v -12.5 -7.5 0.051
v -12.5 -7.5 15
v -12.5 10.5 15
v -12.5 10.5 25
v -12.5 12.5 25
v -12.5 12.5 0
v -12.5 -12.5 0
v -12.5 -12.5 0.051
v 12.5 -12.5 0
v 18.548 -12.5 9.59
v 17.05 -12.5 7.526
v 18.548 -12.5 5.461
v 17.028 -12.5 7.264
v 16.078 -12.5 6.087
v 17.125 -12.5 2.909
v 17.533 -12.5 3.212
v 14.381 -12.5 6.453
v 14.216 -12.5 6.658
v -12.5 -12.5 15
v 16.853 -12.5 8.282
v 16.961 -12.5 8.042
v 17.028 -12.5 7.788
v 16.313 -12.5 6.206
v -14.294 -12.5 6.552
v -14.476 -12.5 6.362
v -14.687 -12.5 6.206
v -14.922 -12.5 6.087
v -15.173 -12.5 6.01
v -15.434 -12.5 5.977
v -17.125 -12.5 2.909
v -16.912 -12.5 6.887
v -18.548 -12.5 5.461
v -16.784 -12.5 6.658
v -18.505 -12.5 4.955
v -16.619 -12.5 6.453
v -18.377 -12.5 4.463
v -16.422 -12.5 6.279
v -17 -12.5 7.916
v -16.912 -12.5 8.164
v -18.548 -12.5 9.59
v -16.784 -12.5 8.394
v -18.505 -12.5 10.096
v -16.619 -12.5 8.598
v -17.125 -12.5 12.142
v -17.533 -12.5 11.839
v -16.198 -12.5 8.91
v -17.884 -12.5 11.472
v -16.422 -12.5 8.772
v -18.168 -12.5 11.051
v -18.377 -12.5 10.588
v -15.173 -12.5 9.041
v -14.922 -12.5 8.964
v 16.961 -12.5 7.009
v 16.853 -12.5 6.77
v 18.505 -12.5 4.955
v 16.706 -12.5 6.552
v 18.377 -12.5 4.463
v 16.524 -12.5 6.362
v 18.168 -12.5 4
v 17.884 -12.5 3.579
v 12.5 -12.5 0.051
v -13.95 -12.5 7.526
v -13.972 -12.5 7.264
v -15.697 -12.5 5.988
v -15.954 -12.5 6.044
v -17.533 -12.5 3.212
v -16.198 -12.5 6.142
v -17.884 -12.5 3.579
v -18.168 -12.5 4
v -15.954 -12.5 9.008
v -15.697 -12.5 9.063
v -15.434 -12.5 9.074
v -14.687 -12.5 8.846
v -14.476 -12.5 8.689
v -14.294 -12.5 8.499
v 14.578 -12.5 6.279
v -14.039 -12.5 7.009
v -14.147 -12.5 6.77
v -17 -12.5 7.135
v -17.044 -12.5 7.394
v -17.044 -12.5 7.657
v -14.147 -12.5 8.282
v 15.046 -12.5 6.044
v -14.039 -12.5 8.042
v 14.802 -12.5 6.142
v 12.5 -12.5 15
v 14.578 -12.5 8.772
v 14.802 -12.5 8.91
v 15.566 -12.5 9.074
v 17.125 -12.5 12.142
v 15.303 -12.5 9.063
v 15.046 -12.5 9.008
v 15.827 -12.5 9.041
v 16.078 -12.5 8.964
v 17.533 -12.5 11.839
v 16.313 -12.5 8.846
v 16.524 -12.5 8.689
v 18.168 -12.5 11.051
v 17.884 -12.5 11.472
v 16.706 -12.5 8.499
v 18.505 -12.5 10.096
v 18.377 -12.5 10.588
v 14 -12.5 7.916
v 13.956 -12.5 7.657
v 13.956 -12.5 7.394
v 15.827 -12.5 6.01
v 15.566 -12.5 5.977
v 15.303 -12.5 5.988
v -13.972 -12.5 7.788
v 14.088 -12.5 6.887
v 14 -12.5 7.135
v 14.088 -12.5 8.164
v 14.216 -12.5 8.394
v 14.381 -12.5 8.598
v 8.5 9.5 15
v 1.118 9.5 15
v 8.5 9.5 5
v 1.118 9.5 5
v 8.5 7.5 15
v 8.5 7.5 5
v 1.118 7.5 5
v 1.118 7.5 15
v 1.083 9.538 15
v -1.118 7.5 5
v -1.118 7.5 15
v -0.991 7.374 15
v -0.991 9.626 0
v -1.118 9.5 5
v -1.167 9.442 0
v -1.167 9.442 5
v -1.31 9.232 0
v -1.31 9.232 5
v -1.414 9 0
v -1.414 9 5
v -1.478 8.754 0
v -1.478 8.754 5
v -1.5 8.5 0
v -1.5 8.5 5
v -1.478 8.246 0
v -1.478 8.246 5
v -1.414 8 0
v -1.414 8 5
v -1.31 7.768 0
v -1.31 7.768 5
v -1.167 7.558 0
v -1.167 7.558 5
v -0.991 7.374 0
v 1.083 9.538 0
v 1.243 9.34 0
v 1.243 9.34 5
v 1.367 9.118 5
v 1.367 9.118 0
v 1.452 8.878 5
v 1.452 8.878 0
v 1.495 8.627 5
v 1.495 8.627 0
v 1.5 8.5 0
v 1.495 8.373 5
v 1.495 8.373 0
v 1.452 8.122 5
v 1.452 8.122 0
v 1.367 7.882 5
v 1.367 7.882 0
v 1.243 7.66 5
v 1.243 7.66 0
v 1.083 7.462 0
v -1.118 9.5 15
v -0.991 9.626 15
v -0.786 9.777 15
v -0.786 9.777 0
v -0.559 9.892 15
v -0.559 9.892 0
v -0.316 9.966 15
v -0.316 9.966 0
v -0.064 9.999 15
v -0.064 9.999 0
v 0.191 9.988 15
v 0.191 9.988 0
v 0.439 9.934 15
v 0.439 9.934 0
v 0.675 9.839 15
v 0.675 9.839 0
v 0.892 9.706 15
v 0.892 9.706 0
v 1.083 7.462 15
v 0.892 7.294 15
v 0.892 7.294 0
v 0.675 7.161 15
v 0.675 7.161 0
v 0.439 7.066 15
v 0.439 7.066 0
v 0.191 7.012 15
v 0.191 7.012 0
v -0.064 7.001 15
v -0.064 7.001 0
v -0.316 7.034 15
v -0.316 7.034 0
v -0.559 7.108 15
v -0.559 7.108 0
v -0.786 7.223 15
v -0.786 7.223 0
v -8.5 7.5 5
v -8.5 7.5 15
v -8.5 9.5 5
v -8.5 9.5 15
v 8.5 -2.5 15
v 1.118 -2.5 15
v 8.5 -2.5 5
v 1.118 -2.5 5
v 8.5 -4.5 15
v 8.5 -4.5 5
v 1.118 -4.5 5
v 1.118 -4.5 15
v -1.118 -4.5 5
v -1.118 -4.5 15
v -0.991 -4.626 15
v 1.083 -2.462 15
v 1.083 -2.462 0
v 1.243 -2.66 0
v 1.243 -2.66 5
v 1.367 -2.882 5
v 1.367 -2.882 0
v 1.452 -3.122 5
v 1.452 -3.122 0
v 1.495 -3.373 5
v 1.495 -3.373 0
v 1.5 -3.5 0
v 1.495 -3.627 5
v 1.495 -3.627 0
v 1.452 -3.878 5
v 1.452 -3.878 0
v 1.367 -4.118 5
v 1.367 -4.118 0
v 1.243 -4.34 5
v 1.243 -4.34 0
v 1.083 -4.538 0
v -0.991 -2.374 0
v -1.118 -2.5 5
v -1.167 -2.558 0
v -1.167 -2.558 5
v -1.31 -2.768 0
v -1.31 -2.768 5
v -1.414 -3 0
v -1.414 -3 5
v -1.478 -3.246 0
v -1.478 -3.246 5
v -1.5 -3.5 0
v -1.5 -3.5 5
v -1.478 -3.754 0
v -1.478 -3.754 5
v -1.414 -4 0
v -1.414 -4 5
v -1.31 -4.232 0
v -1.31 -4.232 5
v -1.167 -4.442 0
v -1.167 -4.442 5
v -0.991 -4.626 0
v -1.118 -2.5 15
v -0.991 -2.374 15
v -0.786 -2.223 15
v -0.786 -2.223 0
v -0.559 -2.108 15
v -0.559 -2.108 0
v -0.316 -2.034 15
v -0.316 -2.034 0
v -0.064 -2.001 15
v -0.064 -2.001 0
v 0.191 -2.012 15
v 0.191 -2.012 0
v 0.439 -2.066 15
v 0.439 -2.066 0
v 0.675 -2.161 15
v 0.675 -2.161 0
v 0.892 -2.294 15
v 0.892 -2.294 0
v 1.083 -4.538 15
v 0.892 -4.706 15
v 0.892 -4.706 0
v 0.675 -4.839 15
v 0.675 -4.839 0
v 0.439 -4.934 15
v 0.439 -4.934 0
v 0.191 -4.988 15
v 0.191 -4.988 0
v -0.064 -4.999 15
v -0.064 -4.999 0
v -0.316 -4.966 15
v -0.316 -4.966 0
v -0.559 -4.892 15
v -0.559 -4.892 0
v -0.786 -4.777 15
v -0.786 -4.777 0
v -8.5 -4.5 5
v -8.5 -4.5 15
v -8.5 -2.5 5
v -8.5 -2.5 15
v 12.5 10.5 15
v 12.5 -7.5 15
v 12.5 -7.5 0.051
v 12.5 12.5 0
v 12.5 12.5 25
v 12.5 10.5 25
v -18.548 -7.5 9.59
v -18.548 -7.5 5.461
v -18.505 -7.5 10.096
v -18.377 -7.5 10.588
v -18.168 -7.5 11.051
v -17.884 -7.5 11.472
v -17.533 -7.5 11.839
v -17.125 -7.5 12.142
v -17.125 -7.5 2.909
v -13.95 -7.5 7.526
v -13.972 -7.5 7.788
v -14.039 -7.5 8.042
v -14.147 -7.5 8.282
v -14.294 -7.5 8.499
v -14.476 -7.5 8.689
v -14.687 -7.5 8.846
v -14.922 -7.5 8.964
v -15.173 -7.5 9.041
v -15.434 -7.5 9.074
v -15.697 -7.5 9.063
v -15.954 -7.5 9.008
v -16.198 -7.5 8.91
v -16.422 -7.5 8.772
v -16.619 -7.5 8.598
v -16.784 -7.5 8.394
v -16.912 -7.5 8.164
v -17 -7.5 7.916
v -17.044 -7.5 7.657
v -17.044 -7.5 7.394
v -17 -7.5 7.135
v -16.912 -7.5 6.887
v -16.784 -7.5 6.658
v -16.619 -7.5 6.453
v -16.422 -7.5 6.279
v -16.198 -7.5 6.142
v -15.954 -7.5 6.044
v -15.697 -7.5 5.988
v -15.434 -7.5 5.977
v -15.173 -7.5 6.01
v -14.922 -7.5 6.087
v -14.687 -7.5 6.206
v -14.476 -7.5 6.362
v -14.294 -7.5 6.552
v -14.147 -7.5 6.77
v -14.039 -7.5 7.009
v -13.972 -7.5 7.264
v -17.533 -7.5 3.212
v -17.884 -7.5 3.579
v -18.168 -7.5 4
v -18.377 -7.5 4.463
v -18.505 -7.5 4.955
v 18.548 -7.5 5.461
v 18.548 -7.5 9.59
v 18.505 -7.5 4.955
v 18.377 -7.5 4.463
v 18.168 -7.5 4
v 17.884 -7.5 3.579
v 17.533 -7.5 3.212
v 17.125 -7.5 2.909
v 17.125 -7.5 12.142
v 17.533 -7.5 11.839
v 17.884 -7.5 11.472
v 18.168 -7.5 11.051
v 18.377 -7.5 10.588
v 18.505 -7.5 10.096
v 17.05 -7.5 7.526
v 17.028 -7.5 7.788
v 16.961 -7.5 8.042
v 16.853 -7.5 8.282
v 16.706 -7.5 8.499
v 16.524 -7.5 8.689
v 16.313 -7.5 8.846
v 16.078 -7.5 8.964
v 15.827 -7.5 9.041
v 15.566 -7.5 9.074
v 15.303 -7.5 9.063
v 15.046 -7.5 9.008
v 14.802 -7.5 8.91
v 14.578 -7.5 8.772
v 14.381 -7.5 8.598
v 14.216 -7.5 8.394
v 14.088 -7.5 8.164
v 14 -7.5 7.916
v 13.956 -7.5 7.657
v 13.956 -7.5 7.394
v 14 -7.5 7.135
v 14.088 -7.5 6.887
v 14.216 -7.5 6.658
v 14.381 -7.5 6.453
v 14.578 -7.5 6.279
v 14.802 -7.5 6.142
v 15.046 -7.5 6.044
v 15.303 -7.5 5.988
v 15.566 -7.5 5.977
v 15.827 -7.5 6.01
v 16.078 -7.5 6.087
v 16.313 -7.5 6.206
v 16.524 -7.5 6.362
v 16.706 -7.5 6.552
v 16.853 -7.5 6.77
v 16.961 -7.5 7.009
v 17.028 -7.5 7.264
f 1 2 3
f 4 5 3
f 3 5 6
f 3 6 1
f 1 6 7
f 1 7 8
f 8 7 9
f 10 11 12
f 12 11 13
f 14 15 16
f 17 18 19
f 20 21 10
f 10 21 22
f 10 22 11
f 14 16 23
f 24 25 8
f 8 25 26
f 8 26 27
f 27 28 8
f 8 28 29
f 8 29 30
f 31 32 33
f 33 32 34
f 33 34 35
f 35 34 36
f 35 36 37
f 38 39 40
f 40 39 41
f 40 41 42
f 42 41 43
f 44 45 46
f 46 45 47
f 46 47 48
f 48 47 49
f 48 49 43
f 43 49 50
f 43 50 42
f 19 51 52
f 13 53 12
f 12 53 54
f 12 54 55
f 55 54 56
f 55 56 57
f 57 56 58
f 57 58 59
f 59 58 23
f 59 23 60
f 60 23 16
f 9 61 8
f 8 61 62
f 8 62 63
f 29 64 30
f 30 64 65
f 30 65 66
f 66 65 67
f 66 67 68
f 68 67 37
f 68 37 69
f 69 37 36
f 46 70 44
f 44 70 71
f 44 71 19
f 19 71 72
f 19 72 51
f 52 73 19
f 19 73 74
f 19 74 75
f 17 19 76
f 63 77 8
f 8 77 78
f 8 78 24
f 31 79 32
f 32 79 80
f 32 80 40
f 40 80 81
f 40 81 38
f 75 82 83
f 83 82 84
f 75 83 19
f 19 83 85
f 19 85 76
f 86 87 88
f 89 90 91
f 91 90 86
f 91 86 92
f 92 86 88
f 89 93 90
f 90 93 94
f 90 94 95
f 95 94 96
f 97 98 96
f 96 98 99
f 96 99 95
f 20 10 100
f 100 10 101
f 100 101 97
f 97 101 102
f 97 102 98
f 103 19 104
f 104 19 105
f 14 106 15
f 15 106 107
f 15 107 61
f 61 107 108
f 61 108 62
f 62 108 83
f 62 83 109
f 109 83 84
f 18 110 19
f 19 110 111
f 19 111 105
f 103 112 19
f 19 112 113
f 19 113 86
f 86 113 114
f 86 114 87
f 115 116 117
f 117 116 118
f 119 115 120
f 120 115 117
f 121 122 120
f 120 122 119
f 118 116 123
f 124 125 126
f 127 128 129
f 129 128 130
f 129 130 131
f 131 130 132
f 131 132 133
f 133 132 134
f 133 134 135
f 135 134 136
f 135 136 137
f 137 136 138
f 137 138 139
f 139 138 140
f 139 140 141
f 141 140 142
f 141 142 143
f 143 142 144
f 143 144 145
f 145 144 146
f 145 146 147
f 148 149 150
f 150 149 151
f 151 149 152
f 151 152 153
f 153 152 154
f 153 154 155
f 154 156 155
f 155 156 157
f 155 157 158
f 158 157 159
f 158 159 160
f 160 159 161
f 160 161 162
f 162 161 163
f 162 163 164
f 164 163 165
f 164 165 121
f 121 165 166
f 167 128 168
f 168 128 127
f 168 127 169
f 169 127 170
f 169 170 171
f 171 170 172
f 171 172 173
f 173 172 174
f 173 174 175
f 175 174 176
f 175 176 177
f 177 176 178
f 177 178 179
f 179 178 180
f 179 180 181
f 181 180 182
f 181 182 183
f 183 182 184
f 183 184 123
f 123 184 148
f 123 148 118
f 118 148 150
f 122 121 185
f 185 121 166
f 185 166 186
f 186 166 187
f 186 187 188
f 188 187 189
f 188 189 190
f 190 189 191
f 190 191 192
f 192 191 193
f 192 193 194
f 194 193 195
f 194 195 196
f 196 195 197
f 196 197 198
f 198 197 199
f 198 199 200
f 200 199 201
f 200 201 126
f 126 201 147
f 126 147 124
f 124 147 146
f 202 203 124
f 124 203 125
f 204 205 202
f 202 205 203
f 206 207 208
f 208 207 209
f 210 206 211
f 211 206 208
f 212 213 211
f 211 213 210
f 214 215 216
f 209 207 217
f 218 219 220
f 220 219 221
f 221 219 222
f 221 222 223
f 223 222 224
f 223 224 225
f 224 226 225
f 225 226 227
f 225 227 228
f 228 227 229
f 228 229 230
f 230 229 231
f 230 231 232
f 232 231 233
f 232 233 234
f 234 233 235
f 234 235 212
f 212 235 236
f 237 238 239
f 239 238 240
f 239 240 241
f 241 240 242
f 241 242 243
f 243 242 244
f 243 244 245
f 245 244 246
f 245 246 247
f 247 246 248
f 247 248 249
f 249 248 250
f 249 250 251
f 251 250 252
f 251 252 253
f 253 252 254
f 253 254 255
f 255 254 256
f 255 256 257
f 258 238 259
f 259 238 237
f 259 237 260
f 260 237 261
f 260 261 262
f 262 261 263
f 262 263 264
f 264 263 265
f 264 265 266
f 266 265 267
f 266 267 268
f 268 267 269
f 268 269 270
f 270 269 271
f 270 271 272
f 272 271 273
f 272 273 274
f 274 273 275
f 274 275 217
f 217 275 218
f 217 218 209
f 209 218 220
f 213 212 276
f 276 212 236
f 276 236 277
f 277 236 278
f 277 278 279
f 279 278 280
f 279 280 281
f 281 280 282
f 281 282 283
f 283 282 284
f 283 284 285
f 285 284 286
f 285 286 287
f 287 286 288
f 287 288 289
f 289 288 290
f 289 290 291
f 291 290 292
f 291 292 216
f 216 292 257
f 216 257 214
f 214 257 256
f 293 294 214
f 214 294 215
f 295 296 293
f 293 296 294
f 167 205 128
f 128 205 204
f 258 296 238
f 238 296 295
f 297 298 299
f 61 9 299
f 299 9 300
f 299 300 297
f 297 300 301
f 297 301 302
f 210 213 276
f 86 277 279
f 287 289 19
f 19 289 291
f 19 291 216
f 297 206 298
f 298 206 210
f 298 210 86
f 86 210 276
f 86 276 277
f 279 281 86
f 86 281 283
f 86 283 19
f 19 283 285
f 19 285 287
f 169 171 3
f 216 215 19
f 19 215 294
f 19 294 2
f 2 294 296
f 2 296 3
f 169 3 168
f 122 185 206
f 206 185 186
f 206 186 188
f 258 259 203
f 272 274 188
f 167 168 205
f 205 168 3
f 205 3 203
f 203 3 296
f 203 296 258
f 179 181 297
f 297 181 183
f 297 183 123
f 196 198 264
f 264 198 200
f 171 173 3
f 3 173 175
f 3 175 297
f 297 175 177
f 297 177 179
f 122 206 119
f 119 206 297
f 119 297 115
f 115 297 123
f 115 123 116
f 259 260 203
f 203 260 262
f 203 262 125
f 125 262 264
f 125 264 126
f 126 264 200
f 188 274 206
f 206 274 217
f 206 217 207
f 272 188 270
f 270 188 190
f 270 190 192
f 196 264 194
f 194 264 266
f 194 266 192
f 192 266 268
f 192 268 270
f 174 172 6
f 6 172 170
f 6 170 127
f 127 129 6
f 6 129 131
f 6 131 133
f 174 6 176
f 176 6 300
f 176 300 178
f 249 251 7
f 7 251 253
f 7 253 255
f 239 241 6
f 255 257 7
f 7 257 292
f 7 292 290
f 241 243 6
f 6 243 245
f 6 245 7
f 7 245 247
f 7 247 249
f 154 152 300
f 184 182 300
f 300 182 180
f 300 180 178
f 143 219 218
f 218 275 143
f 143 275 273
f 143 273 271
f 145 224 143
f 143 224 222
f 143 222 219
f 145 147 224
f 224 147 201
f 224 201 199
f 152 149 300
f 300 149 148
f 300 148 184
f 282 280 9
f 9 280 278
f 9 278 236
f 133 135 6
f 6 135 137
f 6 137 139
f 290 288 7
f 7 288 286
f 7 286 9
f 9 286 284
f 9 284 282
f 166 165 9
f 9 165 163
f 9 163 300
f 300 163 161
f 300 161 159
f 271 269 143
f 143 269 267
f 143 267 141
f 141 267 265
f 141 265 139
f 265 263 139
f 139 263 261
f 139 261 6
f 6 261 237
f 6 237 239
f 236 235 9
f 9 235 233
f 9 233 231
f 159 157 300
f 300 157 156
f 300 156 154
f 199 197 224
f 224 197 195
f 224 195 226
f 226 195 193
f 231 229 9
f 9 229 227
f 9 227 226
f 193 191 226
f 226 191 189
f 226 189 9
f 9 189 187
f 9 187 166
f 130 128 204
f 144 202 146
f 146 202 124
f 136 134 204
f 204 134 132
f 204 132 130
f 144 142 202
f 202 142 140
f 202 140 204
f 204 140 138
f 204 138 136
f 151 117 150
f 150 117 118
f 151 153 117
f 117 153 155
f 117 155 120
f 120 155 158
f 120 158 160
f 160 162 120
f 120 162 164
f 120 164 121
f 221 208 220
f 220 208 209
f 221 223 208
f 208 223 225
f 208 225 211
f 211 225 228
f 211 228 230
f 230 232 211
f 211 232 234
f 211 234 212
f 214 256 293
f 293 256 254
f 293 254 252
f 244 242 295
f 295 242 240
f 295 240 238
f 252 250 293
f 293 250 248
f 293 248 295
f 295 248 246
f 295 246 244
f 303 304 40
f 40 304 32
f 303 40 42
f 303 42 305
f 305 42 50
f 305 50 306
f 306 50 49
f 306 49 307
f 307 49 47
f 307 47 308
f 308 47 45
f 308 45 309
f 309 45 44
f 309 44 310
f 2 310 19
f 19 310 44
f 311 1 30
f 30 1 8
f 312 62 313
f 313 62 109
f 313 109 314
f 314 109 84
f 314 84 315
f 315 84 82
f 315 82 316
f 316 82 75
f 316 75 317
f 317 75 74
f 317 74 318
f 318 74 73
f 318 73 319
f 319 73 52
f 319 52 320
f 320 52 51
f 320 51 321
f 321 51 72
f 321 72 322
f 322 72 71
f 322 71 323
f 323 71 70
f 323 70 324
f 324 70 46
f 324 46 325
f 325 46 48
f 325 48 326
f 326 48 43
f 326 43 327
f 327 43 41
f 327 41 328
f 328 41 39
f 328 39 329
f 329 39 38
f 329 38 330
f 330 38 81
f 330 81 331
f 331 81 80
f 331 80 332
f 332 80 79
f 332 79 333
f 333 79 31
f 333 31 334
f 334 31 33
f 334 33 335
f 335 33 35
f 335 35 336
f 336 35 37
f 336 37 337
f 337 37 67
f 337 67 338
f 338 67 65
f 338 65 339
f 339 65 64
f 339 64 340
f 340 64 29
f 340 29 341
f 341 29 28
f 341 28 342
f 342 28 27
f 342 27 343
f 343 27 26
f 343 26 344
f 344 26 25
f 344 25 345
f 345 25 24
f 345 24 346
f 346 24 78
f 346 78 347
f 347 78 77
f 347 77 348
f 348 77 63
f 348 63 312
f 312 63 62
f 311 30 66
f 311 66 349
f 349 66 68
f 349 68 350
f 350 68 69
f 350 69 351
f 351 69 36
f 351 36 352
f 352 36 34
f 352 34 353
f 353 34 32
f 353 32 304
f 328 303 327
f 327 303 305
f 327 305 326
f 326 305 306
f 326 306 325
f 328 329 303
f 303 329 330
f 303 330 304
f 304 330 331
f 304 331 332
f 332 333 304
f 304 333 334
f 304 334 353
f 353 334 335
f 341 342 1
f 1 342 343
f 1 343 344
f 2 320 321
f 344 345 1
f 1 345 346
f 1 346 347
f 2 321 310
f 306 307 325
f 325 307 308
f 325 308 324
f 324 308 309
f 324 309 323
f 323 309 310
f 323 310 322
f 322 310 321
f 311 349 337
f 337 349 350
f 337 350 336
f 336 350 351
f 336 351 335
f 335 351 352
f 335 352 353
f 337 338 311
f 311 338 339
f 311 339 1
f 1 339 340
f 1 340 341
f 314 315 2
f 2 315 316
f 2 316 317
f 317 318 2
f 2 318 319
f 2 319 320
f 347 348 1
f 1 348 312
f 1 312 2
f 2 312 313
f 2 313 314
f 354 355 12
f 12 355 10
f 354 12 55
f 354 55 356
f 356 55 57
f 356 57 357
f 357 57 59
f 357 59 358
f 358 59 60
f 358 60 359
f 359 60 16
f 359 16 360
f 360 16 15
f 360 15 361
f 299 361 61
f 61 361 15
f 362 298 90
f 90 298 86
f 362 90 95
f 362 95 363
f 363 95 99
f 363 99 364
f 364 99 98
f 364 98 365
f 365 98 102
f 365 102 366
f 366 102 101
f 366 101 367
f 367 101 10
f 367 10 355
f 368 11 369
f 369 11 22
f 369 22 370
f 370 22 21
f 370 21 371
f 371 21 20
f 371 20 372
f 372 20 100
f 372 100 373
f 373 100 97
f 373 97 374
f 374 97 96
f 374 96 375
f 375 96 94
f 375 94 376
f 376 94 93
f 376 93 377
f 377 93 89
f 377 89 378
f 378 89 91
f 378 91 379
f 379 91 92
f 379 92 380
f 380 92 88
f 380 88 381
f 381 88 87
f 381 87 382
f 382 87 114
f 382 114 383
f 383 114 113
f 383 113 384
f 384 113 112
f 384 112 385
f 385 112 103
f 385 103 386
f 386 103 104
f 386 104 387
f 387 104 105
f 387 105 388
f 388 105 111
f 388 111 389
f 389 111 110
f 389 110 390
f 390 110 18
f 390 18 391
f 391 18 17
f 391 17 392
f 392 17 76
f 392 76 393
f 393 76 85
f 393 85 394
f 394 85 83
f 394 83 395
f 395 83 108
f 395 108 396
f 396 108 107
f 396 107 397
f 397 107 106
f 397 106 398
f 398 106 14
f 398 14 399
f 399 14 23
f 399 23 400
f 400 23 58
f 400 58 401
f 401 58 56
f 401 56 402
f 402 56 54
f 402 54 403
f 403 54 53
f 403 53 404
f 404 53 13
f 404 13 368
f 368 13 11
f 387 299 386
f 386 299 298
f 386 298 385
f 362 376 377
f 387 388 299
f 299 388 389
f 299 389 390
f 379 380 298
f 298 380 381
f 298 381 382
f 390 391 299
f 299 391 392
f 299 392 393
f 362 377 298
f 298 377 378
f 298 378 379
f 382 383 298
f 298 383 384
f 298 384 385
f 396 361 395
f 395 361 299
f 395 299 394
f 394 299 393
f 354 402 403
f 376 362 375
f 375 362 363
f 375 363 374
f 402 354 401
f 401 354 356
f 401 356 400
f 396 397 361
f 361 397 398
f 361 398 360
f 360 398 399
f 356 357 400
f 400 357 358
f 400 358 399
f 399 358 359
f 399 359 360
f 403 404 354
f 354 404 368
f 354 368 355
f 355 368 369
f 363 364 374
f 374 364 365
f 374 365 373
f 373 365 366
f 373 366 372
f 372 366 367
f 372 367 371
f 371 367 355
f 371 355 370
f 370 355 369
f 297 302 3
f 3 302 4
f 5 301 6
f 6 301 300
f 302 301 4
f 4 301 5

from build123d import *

# Parameters (mm, degrees)
SKETCH1_W           = 25
SKETCH1_H           = 23
BOSS_EXTRUDE1_DEPTH = 15
BOSS_EXTRUDE4_DEPTH = 5
SKETCH3_R           = 1.55
BOSS_EXTRUDE5_DEPTH = 5
SKETCH1_6_W         = 25
SKETCH1_6_H         = 2
BOSS_EXTRUDE6_DEPTH = 25


with BuildPart() as part:
    # Sketch1 → Boss-Extrude1 (new body)
    with BuildSketch(Plane.XY):
        with Locations((0, -1)):
            Rectangle(SKETCH1_W, SKETCH1_H)
        with BuildLine():
            Line((8.5, -2.5), (8.5, -4.5))
            Line((8.5, -4.5), (1.118033989, -4.5))
            ThreePointArc((1.118033989, -4.5), (0, -5), (-1.118033989, -4.5))
            Line((-1.118033989, -4.5), (-8.5, -4.5))
            Line((-8.5, -4.5), (-8.5, -2.5))
            Line((-8.5, -2.5), (-1.118033989, -2.5))
            ThreePointArc((-1.118033989, -2.5), (0, -2), (1.118033989, -2.5))
            Line((1.118033989, -2.5), (8.5, -2.5))
        make_face(mode=Mode.SUBTRACT)
        with BuildLine():
            Line((8.5, 9.5), (8.5, 7.5))
            Line((8.5, 7.5), (1.118033989, 7.5))
            ThreePointArc((1.118033989, 7.5), (0, 7), (-1.118033989, 7.5))
            Line((-1.118033989, 7.5), (-8.5, 7.5))
            Line((-8.5, 7.5), (-8.5, 9.5))
            Line((-8.5, 9.5), (-1.118033989, 9.5))
            ThreePointArc((-1.118033989, 9.5), (0, 10), (1.118033989, 9.5))
            Line((1.118033989, 9.5), (8.5, 9.5))
        make_face(mode=Mode.SUBTRACT)
    extrude(amount=BOSS_EXTRUDE1_DEPTH)

    # Sketch1<5> → Boss-Extrude4 (add)
    with BuildSketch(Plane.XY):
        with BuildLine():
            Line((1.118033989, -4.5), (8.5, -4.5))
            Line((8.5, -4.5), (8.5, -2.5))
            Line((8.5, -2.5), (1.118033989, -2.5))
            ThreePointArc((1.118033989, -2.5), (1.5, -3.5), (1.118033989, -4.5))
        make_face()
        with BuildLine():
            Line((-8.5, -4.5), (-1.118033989, -4.5))
            ThreePointArc((-1.118033989, -4.5), (-1.5, -3.5), (-1.118033989, -2.5))
            Line((-1.118033989, -2.5), (-8.5, -2.5))
            Line((-8.5, -2.5), (-8.5, -4.5))
        make_face()
        with BuildLine():
            Line((1.118033989, 7.5), (8.5, 7.5))
            Line((8.5, 7.5), (8.5, 9.5))
            Line((8.5, 9.5), (1.118033989, 9.5))
            ThreePointArc((1.118033989, 9.5), (1.5, 8.5), (1.118033989, 7.5))
        make_face()
        with BuildLine():
            Line((-8.5, 7.5), (-1.118033989, 7.5))
            ThreePointArc((-1.118033989, 7.5), (-1.5, 8.5), (-1.118033989, 9.5))
            Line((-1.118033989, 9.5), (-8.5, 9.5))
            Line((-8.5, 9.5), (-8.5, 7.5))
        make_face()
    extrude(amount=BOSS_EXTRUDE4_DEPTH)

    # Sketch3 → Boss-Extrude5 (add)
    # profile 1 of 2: a face of its own
    with BuildSketch(Plane.XZ.offset(12.5)):
        with BuildLine():
            ThreePointArc((17.125197634, 2.909179163), (18.168457468, 4.000265566), (18.548267571, 5.461294281))
            Line((18.548267571, 5.461294281), (18.548267571, 9.590014896))
            ThreePointArc((18.548267571, 9.590014896), (18.168457468, 11.051043611), (17.125197634, 12.142130014))
            Line((17.125197634, 12.142130014), (12.5, 15))
            Line((12.5, 15), (12.5, 0.051309177))
            Line((12.5, 0.051309177), (17.125197634, 2.909179163))
        make_face()
        with Locations((15.5, 7.525654589)):
            Circle(SKETCH3_R, mode=Mode.SUBTRACT)
    # profile 2 of 2: a face of its own
    with BuildSketch(Plane.XZ.offset(12.5)):
        with BuildLine():
            Line((-12.5, 15), (-17.125197634, 12.142130014))
            ThreePointArc((-17.125197634, 12.142130014), (-18.168457468, 11.051043611), (-18.548267571, 9.590014896))
            Line((-18.548267571, 9.590014896), (-18.548267571, 5.461294281))
            ThreePointArc((-18.548267571, 5.461294281), (-18.168457468, 4.000265566), (-17.125197634, 2.909179163))
            Line((-17.125197634, 2.909179163), (-12.5, 0.051309177))
            Line((-12.5, 0.051309177), (-12.5, 15))
        make_face()
        with Locations((-15.5, 7.525654589)):
            Circle(SKETCH3_R, mode=Mode.SUBTRACT)
    extrude(amount=-BOSS_EXTRUDE5_DEPTH)

    # Sketch1<6> → Boss-Extrude6 (add)
    with BuildSketch(Plane.XY):
        with Locations((0, 11.5)):
            Rectangle(SKETCH1_6_W, SKETCH1_6_H)
    extrude(amount=BOSS_EXTRUDE6_DEPTH)


solid = part.part
